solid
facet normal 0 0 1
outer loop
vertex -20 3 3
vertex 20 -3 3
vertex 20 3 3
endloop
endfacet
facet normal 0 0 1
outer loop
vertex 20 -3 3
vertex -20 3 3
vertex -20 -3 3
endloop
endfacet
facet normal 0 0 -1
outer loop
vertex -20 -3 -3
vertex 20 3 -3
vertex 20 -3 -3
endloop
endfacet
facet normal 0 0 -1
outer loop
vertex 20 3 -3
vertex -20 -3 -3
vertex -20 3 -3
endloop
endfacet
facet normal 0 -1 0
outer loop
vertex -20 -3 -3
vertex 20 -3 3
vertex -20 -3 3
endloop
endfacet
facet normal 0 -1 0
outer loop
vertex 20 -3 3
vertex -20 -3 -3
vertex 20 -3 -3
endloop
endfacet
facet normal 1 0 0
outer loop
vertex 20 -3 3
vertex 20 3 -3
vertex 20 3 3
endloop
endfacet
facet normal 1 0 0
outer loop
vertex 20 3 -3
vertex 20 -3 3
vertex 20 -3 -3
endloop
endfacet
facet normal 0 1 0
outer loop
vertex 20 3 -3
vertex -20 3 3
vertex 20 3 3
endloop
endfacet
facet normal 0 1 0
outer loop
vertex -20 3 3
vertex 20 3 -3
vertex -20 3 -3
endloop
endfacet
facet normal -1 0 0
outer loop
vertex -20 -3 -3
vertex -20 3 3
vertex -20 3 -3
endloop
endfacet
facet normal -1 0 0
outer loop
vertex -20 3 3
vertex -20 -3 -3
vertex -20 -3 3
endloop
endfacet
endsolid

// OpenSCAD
$fn=48;
// 40 x 6 x 6 直杆，两端平切 —— 平端面检测的正样本
translate([-20,-3,-3]) cube([40,6,6]);
